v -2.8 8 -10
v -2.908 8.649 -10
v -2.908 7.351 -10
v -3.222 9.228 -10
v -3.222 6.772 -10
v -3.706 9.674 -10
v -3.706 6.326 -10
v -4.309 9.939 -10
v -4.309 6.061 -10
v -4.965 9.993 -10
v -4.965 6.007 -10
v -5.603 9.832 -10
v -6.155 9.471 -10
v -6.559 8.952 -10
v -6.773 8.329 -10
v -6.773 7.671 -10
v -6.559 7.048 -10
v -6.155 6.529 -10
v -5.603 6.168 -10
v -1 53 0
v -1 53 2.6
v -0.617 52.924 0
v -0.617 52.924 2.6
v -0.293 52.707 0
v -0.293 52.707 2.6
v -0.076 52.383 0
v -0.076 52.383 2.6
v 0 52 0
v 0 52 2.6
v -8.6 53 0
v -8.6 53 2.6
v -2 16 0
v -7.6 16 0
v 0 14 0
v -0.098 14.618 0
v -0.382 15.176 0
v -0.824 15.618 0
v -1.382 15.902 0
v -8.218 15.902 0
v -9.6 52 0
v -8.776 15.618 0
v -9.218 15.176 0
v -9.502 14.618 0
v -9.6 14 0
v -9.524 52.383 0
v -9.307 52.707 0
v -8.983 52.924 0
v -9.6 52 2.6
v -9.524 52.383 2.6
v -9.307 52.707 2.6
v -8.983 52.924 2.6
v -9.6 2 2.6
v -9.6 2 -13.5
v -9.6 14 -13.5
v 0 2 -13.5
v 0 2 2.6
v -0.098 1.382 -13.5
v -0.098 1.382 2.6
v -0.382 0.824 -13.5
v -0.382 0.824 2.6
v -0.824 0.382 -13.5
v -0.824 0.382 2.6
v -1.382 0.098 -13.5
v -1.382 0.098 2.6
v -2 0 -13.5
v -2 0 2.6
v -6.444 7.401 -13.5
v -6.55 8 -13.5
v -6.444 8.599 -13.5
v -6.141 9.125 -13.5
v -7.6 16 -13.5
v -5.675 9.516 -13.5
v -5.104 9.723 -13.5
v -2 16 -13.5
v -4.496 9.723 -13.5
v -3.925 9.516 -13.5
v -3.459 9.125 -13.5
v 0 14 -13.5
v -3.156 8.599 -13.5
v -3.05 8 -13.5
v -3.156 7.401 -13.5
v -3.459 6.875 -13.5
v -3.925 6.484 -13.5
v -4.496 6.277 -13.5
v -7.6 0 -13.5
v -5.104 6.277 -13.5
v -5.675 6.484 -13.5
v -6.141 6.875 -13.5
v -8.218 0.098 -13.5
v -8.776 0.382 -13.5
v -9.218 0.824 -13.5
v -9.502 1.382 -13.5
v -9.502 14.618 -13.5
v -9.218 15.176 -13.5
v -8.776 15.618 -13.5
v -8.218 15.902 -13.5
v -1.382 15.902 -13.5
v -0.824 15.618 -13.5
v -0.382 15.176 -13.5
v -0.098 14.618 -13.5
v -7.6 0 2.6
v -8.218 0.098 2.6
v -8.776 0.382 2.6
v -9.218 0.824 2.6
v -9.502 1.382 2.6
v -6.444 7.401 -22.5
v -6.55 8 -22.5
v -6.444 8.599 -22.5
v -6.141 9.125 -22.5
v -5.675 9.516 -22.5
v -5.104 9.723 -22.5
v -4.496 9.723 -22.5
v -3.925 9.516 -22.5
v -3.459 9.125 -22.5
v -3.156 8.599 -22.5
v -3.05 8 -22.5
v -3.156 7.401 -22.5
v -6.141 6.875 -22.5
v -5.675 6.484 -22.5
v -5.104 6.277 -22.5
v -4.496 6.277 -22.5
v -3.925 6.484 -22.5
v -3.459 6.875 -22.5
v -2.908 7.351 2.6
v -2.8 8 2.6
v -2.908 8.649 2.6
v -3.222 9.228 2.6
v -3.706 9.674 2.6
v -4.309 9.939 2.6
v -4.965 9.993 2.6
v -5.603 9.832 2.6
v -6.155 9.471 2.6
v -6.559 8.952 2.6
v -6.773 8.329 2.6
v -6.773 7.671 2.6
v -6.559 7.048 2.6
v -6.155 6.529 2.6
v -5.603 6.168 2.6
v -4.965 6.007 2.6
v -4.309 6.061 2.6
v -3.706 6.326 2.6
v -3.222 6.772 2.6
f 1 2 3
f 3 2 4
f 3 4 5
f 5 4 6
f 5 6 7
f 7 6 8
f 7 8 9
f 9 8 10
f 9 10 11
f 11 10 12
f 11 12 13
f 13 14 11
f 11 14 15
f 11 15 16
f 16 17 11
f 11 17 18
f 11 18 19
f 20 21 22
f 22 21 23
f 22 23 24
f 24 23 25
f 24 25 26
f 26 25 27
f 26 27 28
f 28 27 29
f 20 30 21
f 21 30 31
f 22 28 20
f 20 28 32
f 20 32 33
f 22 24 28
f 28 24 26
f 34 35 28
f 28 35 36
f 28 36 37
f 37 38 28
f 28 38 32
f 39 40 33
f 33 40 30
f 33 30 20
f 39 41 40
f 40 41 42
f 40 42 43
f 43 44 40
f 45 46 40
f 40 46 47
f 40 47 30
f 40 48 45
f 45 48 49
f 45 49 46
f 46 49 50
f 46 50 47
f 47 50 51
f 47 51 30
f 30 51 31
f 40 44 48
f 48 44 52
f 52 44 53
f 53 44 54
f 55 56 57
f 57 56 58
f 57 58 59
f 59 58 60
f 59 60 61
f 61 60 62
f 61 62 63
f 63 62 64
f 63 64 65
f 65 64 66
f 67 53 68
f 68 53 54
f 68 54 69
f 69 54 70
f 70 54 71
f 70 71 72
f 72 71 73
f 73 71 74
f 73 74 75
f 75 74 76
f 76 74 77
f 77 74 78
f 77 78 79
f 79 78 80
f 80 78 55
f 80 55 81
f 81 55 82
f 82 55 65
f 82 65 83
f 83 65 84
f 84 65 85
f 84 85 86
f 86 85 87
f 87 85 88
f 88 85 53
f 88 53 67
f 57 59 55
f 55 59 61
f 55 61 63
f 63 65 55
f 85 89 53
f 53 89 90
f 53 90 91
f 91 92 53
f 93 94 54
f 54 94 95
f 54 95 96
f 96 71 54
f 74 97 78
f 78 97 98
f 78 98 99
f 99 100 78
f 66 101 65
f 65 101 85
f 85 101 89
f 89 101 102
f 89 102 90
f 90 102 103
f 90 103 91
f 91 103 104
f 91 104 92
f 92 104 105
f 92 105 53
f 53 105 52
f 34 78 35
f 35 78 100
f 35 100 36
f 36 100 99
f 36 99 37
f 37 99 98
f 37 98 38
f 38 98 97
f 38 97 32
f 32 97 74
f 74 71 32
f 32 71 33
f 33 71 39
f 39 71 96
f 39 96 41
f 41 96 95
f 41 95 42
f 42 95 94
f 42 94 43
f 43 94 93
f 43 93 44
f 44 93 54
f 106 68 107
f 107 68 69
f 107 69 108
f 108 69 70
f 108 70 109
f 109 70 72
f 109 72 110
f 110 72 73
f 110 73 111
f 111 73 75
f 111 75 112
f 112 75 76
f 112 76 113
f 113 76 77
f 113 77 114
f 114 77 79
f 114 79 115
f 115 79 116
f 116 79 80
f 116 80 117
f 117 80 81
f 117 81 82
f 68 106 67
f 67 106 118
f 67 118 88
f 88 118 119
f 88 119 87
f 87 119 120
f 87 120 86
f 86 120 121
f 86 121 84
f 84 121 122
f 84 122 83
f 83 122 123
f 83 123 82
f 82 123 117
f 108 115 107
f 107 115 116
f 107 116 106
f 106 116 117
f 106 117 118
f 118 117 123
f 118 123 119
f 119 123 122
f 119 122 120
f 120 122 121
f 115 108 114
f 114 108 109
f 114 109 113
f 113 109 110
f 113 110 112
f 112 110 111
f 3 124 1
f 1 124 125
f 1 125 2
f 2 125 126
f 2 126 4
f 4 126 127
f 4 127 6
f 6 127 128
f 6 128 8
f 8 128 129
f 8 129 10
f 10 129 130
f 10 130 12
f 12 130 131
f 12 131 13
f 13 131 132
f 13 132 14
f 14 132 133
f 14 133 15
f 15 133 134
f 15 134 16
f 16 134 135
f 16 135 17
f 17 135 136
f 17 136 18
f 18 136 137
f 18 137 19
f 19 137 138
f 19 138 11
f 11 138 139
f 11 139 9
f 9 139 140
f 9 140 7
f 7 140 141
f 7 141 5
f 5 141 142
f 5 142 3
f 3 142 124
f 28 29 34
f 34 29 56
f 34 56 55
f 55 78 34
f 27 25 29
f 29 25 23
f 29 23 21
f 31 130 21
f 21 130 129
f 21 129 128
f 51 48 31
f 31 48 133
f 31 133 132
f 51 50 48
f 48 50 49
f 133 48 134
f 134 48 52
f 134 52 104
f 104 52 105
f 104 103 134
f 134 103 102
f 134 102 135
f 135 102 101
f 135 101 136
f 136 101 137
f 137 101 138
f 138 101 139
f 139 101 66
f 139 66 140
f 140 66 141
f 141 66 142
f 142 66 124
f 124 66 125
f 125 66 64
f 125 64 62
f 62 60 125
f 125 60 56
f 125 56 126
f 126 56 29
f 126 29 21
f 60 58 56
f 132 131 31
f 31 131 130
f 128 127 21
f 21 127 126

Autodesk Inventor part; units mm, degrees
ref_plane "YZ Plane" through (0, 0, 0) normal (1, 0, 0) x (0, 1, 0)
ref_plane "XZ Plane" through (0, 0, 0) normal (0, 1, 0) x (-1, 0, 0)
ref_plane "XY Plane" through (0, 0, 0) normal (0, 0, 1) x (1, 0, 0)
sketch "Sketch8" plane through (0, 0, 0) normal (0, 0, 1) x (1, 0, 0)
  line L0 (0, 0) -> (-9.6, 0)
  line L1 (-9.6, 0) -> (-9.6, 53)
  line L2 (-9.6, 53) -> (0, 53)
  line L3 (0, 53) -> (0, 0)
  line L4 (0, 4) -> (-9.6, 4)
  line L5 (-4.8, 4) -> (-4.8, 12)
  circle A0 centre (-4.8, 8) radius 2
  point P0 (-4.8, 6)
  point P1 (-4.8, 10)
  dimension "d23" = 9.6
  dimension "d24" = 53
  dimension "d25" = 8
  dimension "d26" = 4
extrude "Extrusion7" add sketch "Sketch8" along normal blind 2.6
sketch "Sketch9" plane through (0, 0, 0) normal (0, 0, -1) x (-1, 0, 0)
  line L0 (0, 0) -> (9.6, 0)
  line L1 (9.6, 0) -> (9.6, 16)
  line L2 (9.6, 16) -> (0, 16)
  line L3 (0, 16) -> (0, 0)
  dimension "d29" = 9.6
  dimension "d30" = 16
extrude "Extrusion8" add sketch "Sketch9" along normal blind 13.5
sketch "Sketch10" plane through (0, 0, -13.5) normal (0, 0, -1) x (-1, 0, 0)
  circle A0 centre (4.8, 8) radius 1.75
  circle A1 centre (4.8, 8) radius 1.75
  point P0 (0, 0)
  dimension "d33" = 3.5
  dimension "d41" = 3.5
extrude "Extrusion9" add sketch "Sketch10" along normal blind 9
fillet "Fillet2" radius 2 4 edges at (-9.6, 16, -6.75) (0, 16, -6.75) (-9.6, 0, -5.45) (0, 0, -5.45)
fillet "Fillet3" radius 1 2 edges at (-9.6, 53, 1.3) (0, 53, 1.3)
sketch "Sketch11" plane through (-4.8, 8, 0) normal (0, 0, 1) x (1, 0, 0)
  circle A0 centre (0, 0) radius 2
  point P0 (4.8, -8)
  dimension "d38" = 4
extrude "Extrusion10" cut sketch "Sketch11" against normal blind 10
properties part number "Hook_TestFit"
